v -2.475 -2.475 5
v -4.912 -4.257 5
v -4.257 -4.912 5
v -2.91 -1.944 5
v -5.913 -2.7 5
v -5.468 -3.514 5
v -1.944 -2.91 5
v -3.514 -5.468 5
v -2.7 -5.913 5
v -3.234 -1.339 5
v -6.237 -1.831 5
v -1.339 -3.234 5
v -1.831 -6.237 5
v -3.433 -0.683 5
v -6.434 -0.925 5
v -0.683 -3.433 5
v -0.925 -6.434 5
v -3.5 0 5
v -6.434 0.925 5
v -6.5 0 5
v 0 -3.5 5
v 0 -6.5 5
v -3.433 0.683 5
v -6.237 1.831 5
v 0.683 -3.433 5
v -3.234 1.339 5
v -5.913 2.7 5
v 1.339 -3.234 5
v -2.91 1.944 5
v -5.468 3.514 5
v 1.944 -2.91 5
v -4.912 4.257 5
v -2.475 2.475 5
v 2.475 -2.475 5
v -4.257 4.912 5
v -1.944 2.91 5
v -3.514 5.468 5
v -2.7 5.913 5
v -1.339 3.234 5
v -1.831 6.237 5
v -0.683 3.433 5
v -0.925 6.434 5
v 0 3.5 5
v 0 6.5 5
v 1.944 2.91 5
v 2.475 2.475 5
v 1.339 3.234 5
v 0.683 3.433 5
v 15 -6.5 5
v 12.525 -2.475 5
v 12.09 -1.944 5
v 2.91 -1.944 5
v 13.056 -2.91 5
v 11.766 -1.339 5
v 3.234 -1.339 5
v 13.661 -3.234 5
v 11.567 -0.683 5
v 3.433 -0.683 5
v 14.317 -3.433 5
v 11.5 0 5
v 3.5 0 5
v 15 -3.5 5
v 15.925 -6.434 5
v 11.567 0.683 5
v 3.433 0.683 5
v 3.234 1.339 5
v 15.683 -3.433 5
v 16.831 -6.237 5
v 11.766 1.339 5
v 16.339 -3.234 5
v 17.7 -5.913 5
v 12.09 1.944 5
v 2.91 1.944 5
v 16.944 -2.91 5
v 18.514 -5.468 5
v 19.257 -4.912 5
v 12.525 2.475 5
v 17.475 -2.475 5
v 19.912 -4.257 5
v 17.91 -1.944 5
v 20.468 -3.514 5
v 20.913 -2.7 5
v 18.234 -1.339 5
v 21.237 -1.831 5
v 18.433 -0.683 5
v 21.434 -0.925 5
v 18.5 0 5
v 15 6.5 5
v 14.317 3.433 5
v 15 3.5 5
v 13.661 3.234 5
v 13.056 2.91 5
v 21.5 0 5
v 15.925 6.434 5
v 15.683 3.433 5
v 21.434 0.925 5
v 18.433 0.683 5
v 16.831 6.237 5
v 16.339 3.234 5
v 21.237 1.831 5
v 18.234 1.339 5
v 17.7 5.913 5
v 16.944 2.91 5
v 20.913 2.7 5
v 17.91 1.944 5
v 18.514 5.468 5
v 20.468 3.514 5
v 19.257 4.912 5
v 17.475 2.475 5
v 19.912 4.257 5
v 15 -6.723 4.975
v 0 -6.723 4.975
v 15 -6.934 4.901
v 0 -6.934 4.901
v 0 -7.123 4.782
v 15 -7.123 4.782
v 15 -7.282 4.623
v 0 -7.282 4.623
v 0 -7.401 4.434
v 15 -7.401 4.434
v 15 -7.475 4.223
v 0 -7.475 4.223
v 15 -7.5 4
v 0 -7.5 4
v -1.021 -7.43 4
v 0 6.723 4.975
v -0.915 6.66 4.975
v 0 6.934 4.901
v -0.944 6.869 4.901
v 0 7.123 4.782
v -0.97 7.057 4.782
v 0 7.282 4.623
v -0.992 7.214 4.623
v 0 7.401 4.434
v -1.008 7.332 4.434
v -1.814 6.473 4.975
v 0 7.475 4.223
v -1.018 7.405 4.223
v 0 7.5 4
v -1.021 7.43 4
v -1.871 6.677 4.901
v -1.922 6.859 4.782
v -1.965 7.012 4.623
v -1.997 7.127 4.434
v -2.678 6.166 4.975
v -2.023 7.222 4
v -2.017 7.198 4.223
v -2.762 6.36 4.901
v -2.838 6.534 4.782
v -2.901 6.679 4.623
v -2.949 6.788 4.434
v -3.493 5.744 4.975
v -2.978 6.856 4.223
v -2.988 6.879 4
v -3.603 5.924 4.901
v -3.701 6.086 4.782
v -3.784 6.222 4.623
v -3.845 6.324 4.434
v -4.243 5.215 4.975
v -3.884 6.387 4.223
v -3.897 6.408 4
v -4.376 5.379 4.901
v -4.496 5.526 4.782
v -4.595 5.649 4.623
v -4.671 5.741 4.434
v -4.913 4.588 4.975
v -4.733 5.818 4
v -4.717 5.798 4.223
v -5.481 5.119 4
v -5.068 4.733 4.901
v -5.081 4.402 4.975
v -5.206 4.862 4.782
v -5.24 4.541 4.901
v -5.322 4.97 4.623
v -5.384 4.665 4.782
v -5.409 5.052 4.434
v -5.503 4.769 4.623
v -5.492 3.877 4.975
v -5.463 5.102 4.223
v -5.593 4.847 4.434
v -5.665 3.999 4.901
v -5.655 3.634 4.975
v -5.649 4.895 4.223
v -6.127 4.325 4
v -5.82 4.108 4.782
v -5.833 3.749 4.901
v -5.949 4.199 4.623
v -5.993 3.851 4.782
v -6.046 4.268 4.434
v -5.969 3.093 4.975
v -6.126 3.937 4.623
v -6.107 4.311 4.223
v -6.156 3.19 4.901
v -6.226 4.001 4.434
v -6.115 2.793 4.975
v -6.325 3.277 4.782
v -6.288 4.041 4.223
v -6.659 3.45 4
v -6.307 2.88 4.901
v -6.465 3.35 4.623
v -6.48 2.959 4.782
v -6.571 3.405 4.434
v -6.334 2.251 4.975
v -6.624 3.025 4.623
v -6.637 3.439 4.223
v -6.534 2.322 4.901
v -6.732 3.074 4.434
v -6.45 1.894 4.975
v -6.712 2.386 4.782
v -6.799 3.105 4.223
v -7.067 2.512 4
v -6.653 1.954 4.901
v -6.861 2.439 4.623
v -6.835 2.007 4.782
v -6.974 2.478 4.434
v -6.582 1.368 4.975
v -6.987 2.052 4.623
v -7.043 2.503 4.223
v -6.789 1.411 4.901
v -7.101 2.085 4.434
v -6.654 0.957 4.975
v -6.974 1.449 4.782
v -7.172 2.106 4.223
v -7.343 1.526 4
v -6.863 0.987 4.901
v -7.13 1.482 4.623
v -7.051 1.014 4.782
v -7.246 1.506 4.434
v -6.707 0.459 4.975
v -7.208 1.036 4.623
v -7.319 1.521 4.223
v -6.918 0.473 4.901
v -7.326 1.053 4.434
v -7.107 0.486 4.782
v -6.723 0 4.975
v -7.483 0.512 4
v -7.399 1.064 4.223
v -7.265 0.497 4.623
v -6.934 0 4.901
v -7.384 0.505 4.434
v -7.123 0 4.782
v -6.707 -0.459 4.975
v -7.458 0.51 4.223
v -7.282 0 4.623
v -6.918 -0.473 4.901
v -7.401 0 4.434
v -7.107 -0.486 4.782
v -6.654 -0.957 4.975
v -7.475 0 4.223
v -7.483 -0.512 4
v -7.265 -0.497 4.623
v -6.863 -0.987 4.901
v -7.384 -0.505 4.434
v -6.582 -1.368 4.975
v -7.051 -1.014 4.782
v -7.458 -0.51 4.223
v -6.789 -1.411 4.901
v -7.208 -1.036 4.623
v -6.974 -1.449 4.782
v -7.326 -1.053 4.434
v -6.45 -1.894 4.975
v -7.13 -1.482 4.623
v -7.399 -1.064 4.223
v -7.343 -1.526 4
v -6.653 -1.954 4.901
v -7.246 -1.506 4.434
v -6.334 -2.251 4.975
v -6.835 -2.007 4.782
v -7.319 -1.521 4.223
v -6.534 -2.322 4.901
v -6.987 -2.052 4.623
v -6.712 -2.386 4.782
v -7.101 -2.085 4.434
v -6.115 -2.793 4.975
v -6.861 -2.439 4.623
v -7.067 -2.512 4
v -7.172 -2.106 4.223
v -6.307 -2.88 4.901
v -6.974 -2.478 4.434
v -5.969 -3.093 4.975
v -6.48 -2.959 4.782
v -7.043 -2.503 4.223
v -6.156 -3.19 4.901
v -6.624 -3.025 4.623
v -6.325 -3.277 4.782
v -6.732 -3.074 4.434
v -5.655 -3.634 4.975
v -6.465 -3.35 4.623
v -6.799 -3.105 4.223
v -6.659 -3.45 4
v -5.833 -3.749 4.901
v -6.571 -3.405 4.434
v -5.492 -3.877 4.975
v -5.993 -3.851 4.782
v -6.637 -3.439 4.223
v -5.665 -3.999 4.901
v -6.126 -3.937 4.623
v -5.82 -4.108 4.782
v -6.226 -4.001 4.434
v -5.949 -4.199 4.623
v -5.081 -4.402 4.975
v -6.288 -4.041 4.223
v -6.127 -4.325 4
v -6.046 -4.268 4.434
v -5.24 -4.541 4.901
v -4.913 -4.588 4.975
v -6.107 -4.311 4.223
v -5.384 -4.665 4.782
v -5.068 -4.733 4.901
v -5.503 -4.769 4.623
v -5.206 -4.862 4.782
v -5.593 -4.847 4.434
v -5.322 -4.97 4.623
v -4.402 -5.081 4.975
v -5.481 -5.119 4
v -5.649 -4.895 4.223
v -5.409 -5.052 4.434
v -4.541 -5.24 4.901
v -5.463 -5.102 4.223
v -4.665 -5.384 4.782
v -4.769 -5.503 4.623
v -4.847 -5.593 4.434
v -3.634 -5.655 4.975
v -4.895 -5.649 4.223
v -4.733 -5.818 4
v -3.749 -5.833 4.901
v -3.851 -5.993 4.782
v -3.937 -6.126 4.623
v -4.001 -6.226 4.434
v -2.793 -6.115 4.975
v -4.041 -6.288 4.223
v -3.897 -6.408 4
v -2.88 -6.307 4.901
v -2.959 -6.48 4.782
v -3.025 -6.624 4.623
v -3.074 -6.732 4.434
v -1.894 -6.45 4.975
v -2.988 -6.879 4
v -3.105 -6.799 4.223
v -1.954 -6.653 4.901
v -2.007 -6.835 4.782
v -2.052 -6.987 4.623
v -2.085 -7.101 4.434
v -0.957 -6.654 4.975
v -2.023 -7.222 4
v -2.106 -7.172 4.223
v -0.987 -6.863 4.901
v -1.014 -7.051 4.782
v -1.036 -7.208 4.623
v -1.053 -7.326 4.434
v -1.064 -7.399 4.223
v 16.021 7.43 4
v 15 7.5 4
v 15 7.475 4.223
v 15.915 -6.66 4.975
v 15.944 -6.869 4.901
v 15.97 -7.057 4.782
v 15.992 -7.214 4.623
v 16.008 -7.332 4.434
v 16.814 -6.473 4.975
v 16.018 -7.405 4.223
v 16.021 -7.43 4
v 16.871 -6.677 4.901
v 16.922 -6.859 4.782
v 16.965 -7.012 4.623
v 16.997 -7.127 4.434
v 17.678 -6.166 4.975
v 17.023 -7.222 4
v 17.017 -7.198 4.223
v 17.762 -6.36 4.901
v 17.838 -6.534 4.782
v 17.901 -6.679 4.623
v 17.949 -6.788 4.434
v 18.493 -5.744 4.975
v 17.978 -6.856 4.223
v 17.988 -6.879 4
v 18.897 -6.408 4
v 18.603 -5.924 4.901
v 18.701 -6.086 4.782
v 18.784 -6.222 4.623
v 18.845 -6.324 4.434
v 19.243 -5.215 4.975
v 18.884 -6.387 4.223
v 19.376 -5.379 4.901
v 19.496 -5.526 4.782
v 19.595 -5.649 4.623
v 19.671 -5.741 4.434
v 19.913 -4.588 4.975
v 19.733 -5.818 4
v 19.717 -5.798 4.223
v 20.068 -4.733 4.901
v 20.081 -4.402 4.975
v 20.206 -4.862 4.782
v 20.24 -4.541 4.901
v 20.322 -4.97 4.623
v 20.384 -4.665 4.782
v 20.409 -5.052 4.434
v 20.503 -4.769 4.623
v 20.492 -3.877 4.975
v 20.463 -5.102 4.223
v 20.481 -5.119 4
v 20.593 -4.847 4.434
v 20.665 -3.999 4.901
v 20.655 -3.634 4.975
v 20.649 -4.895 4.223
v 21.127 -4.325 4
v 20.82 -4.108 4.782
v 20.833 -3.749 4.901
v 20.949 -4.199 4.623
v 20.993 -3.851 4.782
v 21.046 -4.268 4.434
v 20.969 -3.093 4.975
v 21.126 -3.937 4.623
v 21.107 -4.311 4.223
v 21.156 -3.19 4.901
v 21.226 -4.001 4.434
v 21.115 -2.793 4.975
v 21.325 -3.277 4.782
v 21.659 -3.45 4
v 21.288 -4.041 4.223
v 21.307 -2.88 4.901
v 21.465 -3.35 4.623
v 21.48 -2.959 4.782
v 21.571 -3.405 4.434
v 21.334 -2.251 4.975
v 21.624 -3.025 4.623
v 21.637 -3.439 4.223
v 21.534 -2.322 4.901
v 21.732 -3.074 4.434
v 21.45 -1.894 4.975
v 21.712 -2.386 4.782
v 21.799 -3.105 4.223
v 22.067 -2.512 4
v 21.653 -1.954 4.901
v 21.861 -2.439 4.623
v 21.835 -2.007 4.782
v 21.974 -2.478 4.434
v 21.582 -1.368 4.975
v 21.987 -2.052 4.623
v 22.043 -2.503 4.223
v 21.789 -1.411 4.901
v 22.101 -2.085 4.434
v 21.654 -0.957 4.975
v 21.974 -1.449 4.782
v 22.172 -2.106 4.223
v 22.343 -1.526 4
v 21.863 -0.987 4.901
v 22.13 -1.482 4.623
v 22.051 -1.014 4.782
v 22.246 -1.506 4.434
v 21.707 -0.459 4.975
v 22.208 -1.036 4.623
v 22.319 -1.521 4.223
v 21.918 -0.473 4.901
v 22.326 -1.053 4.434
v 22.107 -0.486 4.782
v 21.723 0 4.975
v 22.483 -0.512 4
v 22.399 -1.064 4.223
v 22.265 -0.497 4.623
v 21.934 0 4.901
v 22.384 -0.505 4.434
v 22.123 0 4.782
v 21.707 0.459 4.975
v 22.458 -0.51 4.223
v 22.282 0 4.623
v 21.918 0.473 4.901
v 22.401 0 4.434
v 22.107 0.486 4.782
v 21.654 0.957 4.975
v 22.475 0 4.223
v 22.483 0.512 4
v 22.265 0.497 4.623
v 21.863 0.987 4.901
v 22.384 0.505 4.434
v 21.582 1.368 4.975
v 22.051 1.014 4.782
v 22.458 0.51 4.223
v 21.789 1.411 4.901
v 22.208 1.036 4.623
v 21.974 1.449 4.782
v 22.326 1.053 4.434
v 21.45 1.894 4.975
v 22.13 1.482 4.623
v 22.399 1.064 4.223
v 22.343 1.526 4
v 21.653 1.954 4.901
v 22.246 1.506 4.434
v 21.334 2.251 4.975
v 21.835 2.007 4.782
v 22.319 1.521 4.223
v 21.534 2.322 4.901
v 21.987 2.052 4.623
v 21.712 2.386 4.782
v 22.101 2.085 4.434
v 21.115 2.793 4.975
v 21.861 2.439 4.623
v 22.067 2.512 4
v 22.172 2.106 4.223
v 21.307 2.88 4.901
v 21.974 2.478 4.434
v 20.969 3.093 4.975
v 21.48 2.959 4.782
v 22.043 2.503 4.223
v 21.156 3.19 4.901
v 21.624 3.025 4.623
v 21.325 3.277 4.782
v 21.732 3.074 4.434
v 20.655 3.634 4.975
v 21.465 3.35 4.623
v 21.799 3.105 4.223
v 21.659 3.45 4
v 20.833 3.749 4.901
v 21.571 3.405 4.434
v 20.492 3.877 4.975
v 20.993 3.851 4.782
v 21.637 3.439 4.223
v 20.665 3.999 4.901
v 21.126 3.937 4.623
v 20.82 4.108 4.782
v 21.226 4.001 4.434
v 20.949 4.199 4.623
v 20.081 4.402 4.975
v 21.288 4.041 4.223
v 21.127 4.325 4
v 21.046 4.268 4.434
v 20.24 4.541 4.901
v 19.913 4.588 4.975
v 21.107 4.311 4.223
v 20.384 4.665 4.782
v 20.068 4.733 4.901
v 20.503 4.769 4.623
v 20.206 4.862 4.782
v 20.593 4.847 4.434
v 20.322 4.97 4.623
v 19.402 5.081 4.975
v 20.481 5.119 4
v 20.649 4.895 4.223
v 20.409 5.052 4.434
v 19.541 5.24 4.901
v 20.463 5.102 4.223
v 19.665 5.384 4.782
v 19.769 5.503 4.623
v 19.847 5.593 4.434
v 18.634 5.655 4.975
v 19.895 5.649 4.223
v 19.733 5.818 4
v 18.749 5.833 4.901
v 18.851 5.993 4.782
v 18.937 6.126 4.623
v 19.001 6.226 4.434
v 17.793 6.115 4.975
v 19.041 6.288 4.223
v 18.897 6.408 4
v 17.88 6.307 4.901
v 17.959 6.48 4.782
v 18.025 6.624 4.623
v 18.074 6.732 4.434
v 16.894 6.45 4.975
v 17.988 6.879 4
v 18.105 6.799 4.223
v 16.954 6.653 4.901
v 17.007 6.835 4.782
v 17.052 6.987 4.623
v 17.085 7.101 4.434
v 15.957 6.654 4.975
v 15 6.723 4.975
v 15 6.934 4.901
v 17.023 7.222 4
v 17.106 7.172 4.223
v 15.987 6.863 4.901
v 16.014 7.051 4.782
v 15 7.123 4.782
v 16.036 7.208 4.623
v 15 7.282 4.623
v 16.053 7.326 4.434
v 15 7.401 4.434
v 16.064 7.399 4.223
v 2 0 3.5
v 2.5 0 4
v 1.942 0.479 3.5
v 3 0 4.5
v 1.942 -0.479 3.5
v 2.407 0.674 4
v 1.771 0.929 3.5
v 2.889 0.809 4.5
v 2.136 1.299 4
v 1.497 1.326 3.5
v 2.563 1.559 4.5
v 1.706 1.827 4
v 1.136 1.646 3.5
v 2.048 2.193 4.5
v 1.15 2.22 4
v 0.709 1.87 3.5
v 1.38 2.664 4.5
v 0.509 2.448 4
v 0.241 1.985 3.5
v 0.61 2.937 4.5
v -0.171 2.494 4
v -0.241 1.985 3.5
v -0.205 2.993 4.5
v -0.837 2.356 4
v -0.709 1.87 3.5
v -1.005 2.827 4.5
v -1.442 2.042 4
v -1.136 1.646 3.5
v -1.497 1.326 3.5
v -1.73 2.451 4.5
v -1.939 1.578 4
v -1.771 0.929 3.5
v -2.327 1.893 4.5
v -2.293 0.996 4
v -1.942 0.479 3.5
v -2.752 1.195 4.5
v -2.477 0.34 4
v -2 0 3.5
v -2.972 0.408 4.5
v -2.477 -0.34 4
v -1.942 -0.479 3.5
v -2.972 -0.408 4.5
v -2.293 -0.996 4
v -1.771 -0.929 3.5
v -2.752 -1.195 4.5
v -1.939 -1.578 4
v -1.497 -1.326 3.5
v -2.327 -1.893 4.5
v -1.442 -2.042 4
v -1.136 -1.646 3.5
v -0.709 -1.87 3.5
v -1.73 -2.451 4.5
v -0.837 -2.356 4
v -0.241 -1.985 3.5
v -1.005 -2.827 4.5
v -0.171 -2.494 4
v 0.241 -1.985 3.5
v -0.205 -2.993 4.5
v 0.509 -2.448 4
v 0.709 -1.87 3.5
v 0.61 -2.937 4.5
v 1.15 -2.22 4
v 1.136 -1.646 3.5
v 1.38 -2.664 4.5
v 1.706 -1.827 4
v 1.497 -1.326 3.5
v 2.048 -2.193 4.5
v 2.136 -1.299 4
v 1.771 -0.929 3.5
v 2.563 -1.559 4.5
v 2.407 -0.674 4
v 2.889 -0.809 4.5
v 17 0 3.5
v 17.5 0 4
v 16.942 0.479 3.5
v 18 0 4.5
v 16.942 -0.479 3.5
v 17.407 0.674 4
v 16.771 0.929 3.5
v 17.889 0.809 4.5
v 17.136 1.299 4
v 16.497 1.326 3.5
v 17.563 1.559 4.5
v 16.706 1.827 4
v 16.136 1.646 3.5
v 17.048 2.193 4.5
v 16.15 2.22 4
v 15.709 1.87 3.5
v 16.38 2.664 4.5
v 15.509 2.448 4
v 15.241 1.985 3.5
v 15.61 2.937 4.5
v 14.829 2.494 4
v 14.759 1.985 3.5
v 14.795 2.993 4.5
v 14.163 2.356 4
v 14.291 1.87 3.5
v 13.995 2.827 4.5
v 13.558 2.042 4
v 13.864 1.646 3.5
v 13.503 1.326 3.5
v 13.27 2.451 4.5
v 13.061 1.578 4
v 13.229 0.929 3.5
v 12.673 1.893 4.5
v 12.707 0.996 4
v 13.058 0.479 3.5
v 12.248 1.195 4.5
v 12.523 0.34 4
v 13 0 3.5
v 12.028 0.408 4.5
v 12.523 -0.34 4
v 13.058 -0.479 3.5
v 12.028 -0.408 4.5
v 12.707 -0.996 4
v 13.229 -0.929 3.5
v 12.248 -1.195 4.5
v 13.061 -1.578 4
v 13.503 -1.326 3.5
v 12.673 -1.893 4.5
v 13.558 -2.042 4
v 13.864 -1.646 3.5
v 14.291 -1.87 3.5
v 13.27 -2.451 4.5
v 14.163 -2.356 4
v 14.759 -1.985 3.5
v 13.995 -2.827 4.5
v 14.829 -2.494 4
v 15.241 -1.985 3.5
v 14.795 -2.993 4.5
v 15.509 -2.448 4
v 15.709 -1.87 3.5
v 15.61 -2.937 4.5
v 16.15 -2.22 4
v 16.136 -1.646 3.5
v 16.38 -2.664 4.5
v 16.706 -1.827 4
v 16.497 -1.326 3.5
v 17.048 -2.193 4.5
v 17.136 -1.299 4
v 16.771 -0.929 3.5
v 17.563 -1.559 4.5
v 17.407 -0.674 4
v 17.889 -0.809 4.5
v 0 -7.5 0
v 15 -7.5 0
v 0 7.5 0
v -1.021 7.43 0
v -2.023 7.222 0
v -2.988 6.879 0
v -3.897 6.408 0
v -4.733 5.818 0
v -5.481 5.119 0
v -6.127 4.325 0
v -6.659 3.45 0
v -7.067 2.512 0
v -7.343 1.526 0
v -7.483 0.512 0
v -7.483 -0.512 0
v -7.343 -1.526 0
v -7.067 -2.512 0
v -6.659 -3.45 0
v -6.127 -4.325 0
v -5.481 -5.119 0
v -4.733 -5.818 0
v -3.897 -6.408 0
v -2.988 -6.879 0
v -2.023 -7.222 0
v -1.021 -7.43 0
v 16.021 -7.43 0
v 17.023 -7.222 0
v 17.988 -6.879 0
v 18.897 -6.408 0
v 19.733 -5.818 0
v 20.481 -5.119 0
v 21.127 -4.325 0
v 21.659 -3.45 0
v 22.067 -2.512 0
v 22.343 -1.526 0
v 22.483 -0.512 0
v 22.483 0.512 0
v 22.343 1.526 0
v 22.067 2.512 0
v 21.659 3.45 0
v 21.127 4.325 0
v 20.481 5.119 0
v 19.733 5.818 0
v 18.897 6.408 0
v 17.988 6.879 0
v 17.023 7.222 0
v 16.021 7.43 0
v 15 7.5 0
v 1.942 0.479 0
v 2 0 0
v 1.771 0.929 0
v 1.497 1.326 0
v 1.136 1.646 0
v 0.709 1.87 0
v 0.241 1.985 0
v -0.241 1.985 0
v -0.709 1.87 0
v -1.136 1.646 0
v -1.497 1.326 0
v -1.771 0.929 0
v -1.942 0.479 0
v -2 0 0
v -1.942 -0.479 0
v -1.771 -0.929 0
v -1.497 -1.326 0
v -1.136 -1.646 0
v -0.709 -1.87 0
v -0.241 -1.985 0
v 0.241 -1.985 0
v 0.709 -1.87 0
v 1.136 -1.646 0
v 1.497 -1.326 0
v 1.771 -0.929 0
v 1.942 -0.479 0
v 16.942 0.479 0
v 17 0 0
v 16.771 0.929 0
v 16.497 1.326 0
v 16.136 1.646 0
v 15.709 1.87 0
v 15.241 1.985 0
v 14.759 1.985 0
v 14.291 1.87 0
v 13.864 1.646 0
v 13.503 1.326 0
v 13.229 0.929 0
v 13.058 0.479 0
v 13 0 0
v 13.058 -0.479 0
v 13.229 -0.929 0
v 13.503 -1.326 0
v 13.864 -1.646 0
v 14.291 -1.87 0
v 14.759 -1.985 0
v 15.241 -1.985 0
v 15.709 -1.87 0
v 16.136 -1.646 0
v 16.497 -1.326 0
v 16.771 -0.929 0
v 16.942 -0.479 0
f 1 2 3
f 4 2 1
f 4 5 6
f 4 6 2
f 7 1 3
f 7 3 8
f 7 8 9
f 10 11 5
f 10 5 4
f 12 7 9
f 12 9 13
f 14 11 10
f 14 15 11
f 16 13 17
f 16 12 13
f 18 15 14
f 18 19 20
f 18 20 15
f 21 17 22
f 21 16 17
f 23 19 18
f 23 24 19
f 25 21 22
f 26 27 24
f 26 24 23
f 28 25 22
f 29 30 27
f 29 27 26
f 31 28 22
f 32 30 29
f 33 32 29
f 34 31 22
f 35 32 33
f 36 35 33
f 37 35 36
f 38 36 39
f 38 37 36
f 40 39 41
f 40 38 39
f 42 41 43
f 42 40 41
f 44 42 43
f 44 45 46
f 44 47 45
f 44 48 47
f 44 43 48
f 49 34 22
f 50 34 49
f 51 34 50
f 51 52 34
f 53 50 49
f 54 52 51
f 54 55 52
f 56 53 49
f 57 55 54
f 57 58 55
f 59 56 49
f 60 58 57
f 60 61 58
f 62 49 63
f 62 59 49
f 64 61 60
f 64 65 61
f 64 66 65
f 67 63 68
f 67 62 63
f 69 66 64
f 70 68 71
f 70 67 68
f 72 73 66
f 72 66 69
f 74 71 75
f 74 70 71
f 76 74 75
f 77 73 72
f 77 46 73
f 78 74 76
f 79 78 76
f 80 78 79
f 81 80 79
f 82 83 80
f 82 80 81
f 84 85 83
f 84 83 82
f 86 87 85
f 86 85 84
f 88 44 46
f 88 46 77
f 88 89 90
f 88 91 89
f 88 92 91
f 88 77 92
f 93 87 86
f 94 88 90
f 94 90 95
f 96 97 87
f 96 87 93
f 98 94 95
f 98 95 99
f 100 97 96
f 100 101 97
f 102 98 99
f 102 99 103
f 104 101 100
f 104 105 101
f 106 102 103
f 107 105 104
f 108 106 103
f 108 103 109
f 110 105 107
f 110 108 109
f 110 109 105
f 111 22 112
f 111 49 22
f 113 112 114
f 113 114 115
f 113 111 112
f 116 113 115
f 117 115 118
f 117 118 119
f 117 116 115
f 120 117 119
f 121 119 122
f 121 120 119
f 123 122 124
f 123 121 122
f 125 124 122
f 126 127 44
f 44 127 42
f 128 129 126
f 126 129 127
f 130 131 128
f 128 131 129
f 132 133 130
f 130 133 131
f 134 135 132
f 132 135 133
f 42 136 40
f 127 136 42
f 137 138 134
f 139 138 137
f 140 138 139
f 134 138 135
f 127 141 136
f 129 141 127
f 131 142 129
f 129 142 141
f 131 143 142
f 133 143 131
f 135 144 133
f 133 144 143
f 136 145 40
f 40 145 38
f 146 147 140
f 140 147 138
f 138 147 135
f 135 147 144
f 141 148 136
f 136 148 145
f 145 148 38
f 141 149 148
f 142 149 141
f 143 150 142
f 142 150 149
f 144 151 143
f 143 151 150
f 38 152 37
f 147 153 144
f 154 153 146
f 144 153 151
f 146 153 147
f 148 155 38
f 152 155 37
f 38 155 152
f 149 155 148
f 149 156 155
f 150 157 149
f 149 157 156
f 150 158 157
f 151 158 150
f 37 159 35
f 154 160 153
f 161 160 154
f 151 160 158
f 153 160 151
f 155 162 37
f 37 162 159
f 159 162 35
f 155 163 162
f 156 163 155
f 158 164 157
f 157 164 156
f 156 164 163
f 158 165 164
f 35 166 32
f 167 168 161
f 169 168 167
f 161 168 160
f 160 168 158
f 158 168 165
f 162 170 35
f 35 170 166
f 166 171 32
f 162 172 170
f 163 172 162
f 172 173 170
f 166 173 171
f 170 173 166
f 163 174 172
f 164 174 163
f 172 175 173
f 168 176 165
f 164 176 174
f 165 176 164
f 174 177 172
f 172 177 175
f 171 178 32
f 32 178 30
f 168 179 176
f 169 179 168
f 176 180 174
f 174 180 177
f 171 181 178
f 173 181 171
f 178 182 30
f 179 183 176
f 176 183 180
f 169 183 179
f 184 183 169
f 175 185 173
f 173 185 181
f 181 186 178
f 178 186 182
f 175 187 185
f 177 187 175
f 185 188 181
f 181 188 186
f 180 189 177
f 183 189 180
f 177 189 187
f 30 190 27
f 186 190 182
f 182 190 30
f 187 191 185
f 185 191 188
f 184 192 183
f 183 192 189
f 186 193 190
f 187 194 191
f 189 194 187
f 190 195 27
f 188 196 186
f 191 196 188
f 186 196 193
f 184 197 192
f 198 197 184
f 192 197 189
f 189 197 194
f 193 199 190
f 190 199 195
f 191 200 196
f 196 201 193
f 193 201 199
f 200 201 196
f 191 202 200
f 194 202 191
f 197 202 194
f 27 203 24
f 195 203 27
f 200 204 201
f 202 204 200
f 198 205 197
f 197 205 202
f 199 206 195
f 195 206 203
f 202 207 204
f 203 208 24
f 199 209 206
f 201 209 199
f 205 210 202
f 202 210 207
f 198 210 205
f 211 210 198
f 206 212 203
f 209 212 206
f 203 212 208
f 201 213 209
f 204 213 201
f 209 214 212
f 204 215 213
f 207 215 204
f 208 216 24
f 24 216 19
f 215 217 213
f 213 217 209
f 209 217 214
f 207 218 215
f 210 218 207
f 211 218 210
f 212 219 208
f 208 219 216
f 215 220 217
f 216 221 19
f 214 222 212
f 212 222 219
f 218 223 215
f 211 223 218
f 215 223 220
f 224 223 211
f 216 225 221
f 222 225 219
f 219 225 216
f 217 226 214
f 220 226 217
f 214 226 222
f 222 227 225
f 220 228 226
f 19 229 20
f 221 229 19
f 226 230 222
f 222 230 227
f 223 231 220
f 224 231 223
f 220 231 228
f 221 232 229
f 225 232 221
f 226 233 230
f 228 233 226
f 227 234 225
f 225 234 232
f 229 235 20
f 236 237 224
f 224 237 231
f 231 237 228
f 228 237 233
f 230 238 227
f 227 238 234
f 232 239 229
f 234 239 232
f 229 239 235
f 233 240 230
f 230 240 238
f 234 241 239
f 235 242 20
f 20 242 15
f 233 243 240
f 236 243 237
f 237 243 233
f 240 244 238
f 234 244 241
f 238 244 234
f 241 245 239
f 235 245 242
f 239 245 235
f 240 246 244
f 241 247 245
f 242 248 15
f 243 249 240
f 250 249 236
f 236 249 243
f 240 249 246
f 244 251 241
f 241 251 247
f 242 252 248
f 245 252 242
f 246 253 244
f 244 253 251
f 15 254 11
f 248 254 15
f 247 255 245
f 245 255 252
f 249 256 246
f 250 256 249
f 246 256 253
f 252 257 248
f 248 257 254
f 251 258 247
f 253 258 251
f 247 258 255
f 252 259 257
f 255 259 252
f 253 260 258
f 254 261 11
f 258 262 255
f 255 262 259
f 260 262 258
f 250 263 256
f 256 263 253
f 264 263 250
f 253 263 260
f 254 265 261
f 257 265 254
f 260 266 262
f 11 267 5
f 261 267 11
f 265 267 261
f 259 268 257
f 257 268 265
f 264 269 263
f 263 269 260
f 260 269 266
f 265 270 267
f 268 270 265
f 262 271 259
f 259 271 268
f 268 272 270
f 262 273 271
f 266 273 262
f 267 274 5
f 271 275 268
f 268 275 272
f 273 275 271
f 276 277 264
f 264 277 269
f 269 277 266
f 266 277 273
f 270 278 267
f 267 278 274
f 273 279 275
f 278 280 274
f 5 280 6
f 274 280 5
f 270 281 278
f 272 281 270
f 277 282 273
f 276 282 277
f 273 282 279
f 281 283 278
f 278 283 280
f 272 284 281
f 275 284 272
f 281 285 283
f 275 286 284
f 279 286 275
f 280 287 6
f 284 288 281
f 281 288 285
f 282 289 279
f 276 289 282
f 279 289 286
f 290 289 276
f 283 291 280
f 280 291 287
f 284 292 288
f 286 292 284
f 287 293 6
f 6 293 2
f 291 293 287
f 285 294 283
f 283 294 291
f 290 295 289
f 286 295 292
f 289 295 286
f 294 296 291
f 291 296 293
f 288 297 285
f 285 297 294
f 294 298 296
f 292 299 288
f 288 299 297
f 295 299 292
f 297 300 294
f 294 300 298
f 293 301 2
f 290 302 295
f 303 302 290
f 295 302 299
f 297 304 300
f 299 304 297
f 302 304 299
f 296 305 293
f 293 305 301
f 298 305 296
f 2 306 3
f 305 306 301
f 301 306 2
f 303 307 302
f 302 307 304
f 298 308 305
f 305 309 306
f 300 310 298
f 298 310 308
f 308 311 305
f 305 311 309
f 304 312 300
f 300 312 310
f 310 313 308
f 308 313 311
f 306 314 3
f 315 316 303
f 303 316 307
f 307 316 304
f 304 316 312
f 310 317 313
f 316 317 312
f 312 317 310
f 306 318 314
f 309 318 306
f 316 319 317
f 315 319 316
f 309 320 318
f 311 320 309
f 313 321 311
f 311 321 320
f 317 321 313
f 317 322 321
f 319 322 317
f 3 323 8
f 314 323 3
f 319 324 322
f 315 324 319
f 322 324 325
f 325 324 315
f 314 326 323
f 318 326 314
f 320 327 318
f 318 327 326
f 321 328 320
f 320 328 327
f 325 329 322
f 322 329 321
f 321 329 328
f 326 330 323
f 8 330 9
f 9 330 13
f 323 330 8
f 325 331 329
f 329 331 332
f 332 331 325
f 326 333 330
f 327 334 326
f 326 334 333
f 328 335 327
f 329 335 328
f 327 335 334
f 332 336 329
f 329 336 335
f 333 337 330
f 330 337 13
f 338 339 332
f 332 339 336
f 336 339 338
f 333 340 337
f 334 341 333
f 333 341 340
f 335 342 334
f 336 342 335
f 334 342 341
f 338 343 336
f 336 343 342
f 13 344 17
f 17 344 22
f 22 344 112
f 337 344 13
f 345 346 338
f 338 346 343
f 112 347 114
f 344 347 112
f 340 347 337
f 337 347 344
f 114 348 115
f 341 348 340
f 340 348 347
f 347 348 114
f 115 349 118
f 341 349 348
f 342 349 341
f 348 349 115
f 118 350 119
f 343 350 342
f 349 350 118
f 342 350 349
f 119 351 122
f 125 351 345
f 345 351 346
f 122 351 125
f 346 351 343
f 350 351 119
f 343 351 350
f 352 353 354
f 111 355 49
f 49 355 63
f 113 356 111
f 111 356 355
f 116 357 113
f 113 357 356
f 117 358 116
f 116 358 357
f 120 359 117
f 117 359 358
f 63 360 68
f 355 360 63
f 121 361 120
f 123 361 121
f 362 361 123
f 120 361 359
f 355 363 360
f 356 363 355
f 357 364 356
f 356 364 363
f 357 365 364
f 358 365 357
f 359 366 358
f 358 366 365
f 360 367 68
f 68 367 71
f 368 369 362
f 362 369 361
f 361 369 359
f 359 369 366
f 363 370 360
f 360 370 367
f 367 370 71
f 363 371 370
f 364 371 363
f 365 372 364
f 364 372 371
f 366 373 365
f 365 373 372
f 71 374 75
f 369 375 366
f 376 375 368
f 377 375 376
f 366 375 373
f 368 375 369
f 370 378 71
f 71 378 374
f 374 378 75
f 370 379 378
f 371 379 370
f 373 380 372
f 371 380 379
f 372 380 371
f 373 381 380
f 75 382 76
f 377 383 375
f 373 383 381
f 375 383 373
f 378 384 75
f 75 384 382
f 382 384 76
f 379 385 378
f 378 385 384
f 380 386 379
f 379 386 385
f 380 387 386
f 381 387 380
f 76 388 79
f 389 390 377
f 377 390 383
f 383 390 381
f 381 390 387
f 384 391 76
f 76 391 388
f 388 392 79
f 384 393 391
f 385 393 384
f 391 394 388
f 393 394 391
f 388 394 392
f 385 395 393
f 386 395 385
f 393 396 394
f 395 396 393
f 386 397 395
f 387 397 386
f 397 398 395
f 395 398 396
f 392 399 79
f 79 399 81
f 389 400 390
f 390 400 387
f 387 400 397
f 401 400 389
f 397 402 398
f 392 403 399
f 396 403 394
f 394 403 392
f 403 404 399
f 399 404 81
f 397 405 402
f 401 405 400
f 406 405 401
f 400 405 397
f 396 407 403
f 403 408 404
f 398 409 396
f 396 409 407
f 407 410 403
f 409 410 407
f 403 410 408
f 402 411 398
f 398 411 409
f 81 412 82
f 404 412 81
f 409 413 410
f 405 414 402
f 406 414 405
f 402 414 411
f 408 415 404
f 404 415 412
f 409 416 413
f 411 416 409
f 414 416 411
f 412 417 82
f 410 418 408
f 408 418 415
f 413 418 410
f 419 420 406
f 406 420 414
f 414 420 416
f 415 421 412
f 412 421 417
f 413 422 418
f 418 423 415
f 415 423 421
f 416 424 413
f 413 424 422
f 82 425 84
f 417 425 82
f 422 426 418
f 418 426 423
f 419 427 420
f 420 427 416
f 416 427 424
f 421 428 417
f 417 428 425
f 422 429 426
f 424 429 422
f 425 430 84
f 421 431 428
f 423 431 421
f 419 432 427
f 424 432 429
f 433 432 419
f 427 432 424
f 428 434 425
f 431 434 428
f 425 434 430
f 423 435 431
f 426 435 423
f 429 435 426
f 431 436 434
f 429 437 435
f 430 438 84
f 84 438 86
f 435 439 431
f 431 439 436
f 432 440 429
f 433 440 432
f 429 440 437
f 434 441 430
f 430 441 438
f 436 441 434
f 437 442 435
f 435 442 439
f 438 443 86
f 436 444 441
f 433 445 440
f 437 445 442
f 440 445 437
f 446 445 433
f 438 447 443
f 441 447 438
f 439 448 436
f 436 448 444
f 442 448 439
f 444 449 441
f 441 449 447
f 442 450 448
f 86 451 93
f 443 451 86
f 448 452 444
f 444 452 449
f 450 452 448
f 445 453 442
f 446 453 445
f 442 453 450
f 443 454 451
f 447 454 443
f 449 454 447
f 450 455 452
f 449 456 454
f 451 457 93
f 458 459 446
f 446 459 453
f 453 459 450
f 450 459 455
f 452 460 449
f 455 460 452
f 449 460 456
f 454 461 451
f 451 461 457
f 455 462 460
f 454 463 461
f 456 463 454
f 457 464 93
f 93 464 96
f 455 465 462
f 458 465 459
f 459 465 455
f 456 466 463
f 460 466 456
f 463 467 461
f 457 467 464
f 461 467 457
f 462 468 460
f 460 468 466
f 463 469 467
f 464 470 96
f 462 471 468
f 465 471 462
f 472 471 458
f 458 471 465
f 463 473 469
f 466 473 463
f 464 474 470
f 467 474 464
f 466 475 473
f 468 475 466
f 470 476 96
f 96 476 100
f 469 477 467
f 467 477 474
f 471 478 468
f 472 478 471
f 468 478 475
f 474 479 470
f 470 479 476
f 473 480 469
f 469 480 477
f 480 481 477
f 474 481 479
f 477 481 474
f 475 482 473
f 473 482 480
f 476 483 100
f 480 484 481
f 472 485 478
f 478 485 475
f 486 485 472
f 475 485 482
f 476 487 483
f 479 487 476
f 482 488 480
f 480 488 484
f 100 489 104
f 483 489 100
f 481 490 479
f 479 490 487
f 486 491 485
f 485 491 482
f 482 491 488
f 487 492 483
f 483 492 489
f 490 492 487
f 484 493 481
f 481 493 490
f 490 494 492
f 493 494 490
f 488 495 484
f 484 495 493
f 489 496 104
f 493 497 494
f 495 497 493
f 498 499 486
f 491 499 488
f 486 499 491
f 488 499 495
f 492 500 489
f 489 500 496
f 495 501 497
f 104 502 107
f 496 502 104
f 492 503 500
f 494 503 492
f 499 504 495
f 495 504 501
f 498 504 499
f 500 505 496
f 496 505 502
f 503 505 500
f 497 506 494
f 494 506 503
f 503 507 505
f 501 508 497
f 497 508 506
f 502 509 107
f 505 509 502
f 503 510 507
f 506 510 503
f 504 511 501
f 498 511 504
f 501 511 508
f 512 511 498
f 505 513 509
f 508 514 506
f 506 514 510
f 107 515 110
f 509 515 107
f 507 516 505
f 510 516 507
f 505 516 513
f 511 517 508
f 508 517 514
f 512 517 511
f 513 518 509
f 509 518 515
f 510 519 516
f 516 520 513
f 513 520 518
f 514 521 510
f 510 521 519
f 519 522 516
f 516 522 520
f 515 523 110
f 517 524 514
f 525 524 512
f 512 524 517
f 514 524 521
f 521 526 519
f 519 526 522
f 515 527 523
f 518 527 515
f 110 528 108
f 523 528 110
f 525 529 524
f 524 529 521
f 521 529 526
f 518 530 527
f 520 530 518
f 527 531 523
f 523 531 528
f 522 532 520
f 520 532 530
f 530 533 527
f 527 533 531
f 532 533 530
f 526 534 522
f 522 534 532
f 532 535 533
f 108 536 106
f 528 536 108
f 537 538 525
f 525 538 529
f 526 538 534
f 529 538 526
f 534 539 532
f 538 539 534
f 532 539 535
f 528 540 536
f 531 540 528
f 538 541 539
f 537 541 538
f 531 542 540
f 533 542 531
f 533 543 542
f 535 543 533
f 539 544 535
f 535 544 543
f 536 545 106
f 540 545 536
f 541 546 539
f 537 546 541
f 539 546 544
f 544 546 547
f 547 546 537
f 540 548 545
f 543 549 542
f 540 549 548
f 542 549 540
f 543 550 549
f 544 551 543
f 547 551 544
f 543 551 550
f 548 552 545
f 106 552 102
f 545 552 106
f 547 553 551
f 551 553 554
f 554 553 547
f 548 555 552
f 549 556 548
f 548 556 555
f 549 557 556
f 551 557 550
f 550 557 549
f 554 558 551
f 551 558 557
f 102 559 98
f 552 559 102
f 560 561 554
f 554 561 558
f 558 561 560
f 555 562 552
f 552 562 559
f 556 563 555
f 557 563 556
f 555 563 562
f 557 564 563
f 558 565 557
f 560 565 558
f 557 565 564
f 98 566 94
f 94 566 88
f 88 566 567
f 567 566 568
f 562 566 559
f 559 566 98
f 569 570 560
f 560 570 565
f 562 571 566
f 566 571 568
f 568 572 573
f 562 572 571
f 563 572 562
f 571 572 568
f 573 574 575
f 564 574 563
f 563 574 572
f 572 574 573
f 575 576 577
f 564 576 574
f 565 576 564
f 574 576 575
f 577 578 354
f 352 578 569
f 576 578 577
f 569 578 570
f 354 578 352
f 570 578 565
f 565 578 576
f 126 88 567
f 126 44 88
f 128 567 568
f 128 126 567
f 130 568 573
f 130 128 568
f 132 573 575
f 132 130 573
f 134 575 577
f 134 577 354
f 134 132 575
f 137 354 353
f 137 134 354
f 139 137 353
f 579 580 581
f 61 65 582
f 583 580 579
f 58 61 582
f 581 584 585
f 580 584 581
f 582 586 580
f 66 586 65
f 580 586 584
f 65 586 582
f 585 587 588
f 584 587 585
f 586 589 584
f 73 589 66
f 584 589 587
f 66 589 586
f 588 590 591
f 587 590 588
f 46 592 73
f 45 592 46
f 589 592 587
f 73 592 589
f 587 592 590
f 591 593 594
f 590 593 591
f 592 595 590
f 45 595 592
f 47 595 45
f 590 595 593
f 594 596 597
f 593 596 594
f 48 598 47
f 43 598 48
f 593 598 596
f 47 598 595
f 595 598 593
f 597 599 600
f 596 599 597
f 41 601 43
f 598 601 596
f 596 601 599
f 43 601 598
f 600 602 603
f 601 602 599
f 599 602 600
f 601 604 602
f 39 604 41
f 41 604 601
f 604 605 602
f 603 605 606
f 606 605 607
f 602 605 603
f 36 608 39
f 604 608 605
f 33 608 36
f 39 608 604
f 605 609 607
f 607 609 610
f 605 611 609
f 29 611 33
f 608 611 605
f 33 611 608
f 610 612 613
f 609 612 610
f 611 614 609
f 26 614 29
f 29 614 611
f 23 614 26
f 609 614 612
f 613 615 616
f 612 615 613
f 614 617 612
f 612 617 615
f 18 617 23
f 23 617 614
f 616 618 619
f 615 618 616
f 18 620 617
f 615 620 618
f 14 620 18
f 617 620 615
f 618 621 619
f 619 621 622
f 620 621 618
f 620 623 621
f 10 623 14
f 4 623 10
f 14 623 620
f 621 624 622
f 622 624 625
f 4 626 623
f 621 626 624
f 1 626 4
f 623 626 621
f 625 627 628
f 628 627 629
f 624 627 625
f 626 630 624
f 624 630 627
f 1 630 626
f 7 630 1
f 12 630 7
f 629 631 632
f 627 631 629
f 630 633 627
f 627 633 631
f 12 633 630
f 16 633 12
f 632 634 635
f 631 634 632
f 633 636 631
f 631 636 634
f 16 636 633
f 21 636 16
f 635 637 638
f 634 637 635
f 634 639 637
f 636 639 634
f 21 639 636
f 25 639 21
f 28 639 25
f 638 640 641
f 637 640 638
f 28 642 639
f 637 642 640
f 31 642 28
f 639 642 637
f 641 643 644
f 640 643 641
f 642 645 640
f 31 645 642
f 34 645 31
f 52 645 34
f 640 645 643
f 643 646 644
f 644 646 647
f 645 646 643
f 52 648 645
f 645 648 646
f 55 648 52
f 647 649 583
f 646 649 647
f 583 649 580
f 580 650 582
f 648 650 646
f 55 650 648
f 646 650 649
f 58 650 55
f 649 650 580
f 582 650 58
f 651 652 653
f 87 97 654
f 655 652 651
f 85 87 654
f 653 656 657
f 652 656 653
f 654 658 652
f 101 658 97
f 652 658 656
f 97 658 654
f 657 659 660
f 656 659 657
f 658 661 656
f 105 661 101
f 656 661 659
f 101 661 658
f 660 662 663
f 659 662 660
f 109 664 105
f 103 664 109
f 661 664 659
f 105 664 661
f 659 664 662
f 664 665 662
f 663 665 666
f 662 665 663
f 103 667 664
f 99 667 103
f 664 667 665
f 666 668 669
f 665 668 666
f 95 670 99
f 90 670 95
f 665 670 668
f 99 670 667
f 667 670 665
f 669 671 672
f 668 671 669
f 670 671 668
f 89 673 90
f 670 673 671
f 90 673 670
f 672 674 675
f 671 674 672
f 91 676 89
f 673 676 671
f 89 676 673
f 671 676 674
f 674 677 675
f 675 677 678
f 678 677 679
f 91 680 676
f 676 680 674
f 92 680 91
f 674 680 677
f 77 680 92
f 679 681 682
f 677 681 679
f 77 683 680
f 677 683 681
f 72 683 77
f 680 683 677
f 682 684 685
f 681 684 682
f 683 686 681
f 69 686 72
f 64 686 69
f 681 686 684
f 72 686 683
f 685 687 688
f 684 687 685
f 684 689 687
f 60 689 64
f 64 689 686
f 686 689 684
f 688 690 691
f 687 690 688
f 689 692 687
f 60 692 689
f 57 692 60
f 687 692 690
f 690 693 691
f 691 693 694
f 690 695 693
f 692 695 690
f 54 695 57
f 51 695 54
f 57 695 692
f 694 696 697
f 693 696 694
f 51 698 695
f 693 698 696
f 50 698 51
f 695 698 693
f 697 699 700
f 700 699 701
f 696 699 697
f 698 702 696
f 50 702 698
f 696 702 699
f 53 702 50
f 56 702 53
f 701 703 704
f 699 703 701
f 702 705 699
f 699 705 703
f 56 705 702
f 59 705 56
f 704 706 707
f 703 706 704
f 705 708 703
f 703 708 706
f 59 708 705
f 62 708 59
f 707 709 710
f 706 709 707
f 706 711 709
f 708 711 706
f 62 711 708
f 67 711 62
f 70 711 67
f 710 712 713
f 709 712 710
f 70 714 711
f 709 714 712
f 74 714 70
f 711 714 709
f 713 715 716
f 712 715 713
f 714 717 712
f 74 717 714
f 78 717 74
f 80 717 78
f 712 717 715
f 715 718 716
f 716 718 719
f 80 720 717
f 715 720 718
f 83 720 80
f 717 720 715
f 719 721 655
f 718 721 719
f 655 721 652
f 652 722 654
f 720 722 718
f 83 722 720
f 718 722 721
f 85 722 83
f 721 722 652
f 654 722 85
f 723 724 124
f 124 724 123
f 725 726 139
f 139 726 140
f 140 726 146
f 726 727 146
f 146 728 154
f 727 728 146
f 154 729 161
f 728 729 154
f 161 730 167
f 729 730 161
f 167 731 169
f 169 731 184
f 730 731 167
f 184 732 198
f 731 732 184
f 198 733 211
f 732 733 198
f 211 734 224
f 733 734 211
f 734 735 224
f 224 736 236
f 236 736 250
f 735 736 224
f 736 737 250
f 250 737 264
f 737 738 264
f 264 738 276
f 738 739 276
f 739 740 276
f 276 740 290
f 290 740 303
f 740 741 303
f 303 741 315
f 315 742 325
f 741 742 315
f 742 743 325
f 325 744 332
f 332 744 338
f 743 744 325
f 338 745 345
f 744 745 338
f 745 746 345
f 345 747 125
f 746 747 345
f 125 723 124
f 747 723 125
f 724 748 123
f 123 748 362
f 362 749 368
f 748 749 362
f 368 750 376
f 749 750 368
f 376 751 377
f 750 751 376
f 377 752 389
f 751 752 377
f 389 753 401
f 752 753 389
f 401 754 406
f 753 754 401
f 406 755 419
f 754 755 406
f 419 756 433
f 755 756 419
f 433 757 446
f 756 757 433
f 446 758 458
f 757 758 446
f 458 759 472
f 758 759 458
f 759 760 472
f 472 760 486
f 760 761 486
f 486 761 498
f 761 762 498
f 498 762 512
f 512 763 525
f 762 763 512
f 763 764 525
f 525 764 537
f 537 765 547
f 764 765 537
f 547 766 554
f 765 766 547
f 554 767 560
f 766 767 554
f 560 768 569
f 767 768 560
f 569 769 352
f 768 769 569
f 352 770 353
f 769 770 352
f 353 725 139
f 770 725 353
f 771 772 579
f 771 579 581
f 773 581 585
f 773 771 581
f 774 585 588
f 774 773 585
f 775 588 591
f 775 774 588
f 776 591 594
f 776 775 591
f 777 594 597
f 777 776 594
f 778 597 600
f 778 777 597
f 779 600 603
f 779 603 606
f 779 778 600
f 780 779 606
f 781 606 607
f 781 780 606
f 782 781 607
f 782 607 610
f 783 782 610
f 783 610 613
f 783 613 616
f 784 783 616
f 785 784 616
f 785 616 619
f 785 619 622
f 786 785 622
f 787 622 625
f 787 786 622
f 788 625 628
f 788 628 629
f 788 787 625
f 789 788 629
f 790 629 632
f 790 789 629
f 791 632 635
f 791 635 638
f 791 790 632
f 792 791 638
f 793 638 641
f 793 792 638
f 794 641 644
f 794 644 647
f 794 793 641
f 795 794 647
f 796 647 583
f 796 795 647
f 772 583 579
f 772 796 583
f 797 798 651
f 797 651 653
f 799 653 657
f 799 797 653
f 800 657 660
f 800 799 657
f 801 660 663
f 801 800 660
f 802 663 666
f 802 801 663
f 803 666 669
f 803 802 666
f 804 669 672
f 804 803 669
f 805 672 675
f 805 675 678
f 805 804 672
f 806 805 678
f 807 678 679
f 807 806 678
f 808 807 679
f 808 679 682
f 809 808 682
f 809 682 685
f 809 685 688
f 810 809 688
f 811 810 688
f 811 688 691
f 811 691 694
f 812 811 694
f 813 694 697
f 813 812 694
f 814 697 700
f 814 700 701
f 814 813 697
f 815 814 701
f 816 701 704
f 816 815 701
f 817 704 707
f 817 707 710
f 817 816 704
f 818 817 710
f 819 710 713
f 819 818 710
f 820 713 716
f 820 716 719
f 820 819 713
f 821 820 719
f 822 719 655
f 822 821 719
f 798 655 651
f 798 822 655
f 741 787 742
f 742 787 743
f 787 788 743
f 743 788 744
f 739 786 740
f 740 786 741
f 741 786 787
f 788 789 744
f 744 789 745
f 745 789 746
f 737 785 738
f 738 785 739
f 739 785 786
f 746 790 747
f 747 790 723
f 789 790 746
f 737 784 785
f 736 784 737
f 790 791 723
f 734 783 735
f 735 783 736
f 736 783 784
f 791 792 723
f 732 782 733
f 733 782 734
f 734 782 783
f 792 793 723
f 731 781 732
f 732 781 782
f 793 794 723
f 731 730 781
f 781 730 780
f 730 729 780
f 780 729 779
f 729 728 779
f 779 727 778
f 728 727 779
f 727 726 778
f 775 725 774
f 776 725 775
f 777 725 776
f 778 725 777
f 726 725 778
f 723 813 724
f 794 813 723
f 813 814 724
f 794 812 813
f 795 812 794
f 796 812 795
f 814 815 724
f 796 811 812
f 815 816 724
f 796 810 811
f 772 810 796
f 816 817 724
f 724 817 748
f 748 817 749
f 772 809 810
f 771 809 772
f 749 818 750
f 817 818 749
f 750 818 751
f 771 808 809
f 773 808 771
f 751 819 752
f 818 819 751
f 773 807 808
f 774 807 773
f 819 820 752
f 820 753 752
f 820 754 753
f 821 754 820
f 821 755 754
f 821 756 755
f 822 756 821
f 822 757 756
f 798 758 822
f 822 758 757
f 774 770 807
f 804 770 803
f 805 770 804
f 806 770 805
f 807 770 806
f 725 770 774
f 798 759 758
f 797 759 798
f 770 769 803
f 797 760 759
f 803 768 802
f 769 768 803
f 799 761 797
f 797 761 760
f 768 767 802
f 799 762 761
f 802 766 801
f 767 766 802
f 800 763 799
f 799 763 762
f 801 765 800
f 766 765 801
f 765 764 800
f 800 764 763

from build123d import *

# Parameters (mm, degrees)
SKETCH_R     = 2
PAD_DEPTH    = 5
CHAMFER_SIZE = 1.5
FILLET_R     = 1


with BuildPart() as part:
    # Sketch → Pad (new body)
    with BuildSketch(Plane.XY):
        with BuildLine():
            ThreePointArc((0, 7.5), (-7.5, 0), (0, -7.5))
            Line((0, -7.5), (15, -7.5))
            ThreePointArc((15, -7.5), (22.5, 0), (15, 7.5))
            Line((0, 7.5), (15, 7.5))
        make_face()
        Circle(SKETCH_R, mode=Mode.SUBTRACT)
        with Locations((15, 0)):
            Circle(SKETCH_R, mode=Mode.SUBTRACT)
    extrude(amount=PAD_DEPTH)

    # Chamfer
    chamfer_edges = [part.edges().sort_by_distance(p)[0] for p in [
        (-2, 0, 5),
        (13, 0, 5),
    ]]
    chamfer(chamfer_edges, length=CHAMFER_SIZE)

    # Fillet
    fillet_edges = [part.edges().sort_by_distance(p)[0] for p in [
        (7.5, -7.5, 5),
    ]]
    fillet(fillet_edges, radius=FILLET_R)


solid = part.part
